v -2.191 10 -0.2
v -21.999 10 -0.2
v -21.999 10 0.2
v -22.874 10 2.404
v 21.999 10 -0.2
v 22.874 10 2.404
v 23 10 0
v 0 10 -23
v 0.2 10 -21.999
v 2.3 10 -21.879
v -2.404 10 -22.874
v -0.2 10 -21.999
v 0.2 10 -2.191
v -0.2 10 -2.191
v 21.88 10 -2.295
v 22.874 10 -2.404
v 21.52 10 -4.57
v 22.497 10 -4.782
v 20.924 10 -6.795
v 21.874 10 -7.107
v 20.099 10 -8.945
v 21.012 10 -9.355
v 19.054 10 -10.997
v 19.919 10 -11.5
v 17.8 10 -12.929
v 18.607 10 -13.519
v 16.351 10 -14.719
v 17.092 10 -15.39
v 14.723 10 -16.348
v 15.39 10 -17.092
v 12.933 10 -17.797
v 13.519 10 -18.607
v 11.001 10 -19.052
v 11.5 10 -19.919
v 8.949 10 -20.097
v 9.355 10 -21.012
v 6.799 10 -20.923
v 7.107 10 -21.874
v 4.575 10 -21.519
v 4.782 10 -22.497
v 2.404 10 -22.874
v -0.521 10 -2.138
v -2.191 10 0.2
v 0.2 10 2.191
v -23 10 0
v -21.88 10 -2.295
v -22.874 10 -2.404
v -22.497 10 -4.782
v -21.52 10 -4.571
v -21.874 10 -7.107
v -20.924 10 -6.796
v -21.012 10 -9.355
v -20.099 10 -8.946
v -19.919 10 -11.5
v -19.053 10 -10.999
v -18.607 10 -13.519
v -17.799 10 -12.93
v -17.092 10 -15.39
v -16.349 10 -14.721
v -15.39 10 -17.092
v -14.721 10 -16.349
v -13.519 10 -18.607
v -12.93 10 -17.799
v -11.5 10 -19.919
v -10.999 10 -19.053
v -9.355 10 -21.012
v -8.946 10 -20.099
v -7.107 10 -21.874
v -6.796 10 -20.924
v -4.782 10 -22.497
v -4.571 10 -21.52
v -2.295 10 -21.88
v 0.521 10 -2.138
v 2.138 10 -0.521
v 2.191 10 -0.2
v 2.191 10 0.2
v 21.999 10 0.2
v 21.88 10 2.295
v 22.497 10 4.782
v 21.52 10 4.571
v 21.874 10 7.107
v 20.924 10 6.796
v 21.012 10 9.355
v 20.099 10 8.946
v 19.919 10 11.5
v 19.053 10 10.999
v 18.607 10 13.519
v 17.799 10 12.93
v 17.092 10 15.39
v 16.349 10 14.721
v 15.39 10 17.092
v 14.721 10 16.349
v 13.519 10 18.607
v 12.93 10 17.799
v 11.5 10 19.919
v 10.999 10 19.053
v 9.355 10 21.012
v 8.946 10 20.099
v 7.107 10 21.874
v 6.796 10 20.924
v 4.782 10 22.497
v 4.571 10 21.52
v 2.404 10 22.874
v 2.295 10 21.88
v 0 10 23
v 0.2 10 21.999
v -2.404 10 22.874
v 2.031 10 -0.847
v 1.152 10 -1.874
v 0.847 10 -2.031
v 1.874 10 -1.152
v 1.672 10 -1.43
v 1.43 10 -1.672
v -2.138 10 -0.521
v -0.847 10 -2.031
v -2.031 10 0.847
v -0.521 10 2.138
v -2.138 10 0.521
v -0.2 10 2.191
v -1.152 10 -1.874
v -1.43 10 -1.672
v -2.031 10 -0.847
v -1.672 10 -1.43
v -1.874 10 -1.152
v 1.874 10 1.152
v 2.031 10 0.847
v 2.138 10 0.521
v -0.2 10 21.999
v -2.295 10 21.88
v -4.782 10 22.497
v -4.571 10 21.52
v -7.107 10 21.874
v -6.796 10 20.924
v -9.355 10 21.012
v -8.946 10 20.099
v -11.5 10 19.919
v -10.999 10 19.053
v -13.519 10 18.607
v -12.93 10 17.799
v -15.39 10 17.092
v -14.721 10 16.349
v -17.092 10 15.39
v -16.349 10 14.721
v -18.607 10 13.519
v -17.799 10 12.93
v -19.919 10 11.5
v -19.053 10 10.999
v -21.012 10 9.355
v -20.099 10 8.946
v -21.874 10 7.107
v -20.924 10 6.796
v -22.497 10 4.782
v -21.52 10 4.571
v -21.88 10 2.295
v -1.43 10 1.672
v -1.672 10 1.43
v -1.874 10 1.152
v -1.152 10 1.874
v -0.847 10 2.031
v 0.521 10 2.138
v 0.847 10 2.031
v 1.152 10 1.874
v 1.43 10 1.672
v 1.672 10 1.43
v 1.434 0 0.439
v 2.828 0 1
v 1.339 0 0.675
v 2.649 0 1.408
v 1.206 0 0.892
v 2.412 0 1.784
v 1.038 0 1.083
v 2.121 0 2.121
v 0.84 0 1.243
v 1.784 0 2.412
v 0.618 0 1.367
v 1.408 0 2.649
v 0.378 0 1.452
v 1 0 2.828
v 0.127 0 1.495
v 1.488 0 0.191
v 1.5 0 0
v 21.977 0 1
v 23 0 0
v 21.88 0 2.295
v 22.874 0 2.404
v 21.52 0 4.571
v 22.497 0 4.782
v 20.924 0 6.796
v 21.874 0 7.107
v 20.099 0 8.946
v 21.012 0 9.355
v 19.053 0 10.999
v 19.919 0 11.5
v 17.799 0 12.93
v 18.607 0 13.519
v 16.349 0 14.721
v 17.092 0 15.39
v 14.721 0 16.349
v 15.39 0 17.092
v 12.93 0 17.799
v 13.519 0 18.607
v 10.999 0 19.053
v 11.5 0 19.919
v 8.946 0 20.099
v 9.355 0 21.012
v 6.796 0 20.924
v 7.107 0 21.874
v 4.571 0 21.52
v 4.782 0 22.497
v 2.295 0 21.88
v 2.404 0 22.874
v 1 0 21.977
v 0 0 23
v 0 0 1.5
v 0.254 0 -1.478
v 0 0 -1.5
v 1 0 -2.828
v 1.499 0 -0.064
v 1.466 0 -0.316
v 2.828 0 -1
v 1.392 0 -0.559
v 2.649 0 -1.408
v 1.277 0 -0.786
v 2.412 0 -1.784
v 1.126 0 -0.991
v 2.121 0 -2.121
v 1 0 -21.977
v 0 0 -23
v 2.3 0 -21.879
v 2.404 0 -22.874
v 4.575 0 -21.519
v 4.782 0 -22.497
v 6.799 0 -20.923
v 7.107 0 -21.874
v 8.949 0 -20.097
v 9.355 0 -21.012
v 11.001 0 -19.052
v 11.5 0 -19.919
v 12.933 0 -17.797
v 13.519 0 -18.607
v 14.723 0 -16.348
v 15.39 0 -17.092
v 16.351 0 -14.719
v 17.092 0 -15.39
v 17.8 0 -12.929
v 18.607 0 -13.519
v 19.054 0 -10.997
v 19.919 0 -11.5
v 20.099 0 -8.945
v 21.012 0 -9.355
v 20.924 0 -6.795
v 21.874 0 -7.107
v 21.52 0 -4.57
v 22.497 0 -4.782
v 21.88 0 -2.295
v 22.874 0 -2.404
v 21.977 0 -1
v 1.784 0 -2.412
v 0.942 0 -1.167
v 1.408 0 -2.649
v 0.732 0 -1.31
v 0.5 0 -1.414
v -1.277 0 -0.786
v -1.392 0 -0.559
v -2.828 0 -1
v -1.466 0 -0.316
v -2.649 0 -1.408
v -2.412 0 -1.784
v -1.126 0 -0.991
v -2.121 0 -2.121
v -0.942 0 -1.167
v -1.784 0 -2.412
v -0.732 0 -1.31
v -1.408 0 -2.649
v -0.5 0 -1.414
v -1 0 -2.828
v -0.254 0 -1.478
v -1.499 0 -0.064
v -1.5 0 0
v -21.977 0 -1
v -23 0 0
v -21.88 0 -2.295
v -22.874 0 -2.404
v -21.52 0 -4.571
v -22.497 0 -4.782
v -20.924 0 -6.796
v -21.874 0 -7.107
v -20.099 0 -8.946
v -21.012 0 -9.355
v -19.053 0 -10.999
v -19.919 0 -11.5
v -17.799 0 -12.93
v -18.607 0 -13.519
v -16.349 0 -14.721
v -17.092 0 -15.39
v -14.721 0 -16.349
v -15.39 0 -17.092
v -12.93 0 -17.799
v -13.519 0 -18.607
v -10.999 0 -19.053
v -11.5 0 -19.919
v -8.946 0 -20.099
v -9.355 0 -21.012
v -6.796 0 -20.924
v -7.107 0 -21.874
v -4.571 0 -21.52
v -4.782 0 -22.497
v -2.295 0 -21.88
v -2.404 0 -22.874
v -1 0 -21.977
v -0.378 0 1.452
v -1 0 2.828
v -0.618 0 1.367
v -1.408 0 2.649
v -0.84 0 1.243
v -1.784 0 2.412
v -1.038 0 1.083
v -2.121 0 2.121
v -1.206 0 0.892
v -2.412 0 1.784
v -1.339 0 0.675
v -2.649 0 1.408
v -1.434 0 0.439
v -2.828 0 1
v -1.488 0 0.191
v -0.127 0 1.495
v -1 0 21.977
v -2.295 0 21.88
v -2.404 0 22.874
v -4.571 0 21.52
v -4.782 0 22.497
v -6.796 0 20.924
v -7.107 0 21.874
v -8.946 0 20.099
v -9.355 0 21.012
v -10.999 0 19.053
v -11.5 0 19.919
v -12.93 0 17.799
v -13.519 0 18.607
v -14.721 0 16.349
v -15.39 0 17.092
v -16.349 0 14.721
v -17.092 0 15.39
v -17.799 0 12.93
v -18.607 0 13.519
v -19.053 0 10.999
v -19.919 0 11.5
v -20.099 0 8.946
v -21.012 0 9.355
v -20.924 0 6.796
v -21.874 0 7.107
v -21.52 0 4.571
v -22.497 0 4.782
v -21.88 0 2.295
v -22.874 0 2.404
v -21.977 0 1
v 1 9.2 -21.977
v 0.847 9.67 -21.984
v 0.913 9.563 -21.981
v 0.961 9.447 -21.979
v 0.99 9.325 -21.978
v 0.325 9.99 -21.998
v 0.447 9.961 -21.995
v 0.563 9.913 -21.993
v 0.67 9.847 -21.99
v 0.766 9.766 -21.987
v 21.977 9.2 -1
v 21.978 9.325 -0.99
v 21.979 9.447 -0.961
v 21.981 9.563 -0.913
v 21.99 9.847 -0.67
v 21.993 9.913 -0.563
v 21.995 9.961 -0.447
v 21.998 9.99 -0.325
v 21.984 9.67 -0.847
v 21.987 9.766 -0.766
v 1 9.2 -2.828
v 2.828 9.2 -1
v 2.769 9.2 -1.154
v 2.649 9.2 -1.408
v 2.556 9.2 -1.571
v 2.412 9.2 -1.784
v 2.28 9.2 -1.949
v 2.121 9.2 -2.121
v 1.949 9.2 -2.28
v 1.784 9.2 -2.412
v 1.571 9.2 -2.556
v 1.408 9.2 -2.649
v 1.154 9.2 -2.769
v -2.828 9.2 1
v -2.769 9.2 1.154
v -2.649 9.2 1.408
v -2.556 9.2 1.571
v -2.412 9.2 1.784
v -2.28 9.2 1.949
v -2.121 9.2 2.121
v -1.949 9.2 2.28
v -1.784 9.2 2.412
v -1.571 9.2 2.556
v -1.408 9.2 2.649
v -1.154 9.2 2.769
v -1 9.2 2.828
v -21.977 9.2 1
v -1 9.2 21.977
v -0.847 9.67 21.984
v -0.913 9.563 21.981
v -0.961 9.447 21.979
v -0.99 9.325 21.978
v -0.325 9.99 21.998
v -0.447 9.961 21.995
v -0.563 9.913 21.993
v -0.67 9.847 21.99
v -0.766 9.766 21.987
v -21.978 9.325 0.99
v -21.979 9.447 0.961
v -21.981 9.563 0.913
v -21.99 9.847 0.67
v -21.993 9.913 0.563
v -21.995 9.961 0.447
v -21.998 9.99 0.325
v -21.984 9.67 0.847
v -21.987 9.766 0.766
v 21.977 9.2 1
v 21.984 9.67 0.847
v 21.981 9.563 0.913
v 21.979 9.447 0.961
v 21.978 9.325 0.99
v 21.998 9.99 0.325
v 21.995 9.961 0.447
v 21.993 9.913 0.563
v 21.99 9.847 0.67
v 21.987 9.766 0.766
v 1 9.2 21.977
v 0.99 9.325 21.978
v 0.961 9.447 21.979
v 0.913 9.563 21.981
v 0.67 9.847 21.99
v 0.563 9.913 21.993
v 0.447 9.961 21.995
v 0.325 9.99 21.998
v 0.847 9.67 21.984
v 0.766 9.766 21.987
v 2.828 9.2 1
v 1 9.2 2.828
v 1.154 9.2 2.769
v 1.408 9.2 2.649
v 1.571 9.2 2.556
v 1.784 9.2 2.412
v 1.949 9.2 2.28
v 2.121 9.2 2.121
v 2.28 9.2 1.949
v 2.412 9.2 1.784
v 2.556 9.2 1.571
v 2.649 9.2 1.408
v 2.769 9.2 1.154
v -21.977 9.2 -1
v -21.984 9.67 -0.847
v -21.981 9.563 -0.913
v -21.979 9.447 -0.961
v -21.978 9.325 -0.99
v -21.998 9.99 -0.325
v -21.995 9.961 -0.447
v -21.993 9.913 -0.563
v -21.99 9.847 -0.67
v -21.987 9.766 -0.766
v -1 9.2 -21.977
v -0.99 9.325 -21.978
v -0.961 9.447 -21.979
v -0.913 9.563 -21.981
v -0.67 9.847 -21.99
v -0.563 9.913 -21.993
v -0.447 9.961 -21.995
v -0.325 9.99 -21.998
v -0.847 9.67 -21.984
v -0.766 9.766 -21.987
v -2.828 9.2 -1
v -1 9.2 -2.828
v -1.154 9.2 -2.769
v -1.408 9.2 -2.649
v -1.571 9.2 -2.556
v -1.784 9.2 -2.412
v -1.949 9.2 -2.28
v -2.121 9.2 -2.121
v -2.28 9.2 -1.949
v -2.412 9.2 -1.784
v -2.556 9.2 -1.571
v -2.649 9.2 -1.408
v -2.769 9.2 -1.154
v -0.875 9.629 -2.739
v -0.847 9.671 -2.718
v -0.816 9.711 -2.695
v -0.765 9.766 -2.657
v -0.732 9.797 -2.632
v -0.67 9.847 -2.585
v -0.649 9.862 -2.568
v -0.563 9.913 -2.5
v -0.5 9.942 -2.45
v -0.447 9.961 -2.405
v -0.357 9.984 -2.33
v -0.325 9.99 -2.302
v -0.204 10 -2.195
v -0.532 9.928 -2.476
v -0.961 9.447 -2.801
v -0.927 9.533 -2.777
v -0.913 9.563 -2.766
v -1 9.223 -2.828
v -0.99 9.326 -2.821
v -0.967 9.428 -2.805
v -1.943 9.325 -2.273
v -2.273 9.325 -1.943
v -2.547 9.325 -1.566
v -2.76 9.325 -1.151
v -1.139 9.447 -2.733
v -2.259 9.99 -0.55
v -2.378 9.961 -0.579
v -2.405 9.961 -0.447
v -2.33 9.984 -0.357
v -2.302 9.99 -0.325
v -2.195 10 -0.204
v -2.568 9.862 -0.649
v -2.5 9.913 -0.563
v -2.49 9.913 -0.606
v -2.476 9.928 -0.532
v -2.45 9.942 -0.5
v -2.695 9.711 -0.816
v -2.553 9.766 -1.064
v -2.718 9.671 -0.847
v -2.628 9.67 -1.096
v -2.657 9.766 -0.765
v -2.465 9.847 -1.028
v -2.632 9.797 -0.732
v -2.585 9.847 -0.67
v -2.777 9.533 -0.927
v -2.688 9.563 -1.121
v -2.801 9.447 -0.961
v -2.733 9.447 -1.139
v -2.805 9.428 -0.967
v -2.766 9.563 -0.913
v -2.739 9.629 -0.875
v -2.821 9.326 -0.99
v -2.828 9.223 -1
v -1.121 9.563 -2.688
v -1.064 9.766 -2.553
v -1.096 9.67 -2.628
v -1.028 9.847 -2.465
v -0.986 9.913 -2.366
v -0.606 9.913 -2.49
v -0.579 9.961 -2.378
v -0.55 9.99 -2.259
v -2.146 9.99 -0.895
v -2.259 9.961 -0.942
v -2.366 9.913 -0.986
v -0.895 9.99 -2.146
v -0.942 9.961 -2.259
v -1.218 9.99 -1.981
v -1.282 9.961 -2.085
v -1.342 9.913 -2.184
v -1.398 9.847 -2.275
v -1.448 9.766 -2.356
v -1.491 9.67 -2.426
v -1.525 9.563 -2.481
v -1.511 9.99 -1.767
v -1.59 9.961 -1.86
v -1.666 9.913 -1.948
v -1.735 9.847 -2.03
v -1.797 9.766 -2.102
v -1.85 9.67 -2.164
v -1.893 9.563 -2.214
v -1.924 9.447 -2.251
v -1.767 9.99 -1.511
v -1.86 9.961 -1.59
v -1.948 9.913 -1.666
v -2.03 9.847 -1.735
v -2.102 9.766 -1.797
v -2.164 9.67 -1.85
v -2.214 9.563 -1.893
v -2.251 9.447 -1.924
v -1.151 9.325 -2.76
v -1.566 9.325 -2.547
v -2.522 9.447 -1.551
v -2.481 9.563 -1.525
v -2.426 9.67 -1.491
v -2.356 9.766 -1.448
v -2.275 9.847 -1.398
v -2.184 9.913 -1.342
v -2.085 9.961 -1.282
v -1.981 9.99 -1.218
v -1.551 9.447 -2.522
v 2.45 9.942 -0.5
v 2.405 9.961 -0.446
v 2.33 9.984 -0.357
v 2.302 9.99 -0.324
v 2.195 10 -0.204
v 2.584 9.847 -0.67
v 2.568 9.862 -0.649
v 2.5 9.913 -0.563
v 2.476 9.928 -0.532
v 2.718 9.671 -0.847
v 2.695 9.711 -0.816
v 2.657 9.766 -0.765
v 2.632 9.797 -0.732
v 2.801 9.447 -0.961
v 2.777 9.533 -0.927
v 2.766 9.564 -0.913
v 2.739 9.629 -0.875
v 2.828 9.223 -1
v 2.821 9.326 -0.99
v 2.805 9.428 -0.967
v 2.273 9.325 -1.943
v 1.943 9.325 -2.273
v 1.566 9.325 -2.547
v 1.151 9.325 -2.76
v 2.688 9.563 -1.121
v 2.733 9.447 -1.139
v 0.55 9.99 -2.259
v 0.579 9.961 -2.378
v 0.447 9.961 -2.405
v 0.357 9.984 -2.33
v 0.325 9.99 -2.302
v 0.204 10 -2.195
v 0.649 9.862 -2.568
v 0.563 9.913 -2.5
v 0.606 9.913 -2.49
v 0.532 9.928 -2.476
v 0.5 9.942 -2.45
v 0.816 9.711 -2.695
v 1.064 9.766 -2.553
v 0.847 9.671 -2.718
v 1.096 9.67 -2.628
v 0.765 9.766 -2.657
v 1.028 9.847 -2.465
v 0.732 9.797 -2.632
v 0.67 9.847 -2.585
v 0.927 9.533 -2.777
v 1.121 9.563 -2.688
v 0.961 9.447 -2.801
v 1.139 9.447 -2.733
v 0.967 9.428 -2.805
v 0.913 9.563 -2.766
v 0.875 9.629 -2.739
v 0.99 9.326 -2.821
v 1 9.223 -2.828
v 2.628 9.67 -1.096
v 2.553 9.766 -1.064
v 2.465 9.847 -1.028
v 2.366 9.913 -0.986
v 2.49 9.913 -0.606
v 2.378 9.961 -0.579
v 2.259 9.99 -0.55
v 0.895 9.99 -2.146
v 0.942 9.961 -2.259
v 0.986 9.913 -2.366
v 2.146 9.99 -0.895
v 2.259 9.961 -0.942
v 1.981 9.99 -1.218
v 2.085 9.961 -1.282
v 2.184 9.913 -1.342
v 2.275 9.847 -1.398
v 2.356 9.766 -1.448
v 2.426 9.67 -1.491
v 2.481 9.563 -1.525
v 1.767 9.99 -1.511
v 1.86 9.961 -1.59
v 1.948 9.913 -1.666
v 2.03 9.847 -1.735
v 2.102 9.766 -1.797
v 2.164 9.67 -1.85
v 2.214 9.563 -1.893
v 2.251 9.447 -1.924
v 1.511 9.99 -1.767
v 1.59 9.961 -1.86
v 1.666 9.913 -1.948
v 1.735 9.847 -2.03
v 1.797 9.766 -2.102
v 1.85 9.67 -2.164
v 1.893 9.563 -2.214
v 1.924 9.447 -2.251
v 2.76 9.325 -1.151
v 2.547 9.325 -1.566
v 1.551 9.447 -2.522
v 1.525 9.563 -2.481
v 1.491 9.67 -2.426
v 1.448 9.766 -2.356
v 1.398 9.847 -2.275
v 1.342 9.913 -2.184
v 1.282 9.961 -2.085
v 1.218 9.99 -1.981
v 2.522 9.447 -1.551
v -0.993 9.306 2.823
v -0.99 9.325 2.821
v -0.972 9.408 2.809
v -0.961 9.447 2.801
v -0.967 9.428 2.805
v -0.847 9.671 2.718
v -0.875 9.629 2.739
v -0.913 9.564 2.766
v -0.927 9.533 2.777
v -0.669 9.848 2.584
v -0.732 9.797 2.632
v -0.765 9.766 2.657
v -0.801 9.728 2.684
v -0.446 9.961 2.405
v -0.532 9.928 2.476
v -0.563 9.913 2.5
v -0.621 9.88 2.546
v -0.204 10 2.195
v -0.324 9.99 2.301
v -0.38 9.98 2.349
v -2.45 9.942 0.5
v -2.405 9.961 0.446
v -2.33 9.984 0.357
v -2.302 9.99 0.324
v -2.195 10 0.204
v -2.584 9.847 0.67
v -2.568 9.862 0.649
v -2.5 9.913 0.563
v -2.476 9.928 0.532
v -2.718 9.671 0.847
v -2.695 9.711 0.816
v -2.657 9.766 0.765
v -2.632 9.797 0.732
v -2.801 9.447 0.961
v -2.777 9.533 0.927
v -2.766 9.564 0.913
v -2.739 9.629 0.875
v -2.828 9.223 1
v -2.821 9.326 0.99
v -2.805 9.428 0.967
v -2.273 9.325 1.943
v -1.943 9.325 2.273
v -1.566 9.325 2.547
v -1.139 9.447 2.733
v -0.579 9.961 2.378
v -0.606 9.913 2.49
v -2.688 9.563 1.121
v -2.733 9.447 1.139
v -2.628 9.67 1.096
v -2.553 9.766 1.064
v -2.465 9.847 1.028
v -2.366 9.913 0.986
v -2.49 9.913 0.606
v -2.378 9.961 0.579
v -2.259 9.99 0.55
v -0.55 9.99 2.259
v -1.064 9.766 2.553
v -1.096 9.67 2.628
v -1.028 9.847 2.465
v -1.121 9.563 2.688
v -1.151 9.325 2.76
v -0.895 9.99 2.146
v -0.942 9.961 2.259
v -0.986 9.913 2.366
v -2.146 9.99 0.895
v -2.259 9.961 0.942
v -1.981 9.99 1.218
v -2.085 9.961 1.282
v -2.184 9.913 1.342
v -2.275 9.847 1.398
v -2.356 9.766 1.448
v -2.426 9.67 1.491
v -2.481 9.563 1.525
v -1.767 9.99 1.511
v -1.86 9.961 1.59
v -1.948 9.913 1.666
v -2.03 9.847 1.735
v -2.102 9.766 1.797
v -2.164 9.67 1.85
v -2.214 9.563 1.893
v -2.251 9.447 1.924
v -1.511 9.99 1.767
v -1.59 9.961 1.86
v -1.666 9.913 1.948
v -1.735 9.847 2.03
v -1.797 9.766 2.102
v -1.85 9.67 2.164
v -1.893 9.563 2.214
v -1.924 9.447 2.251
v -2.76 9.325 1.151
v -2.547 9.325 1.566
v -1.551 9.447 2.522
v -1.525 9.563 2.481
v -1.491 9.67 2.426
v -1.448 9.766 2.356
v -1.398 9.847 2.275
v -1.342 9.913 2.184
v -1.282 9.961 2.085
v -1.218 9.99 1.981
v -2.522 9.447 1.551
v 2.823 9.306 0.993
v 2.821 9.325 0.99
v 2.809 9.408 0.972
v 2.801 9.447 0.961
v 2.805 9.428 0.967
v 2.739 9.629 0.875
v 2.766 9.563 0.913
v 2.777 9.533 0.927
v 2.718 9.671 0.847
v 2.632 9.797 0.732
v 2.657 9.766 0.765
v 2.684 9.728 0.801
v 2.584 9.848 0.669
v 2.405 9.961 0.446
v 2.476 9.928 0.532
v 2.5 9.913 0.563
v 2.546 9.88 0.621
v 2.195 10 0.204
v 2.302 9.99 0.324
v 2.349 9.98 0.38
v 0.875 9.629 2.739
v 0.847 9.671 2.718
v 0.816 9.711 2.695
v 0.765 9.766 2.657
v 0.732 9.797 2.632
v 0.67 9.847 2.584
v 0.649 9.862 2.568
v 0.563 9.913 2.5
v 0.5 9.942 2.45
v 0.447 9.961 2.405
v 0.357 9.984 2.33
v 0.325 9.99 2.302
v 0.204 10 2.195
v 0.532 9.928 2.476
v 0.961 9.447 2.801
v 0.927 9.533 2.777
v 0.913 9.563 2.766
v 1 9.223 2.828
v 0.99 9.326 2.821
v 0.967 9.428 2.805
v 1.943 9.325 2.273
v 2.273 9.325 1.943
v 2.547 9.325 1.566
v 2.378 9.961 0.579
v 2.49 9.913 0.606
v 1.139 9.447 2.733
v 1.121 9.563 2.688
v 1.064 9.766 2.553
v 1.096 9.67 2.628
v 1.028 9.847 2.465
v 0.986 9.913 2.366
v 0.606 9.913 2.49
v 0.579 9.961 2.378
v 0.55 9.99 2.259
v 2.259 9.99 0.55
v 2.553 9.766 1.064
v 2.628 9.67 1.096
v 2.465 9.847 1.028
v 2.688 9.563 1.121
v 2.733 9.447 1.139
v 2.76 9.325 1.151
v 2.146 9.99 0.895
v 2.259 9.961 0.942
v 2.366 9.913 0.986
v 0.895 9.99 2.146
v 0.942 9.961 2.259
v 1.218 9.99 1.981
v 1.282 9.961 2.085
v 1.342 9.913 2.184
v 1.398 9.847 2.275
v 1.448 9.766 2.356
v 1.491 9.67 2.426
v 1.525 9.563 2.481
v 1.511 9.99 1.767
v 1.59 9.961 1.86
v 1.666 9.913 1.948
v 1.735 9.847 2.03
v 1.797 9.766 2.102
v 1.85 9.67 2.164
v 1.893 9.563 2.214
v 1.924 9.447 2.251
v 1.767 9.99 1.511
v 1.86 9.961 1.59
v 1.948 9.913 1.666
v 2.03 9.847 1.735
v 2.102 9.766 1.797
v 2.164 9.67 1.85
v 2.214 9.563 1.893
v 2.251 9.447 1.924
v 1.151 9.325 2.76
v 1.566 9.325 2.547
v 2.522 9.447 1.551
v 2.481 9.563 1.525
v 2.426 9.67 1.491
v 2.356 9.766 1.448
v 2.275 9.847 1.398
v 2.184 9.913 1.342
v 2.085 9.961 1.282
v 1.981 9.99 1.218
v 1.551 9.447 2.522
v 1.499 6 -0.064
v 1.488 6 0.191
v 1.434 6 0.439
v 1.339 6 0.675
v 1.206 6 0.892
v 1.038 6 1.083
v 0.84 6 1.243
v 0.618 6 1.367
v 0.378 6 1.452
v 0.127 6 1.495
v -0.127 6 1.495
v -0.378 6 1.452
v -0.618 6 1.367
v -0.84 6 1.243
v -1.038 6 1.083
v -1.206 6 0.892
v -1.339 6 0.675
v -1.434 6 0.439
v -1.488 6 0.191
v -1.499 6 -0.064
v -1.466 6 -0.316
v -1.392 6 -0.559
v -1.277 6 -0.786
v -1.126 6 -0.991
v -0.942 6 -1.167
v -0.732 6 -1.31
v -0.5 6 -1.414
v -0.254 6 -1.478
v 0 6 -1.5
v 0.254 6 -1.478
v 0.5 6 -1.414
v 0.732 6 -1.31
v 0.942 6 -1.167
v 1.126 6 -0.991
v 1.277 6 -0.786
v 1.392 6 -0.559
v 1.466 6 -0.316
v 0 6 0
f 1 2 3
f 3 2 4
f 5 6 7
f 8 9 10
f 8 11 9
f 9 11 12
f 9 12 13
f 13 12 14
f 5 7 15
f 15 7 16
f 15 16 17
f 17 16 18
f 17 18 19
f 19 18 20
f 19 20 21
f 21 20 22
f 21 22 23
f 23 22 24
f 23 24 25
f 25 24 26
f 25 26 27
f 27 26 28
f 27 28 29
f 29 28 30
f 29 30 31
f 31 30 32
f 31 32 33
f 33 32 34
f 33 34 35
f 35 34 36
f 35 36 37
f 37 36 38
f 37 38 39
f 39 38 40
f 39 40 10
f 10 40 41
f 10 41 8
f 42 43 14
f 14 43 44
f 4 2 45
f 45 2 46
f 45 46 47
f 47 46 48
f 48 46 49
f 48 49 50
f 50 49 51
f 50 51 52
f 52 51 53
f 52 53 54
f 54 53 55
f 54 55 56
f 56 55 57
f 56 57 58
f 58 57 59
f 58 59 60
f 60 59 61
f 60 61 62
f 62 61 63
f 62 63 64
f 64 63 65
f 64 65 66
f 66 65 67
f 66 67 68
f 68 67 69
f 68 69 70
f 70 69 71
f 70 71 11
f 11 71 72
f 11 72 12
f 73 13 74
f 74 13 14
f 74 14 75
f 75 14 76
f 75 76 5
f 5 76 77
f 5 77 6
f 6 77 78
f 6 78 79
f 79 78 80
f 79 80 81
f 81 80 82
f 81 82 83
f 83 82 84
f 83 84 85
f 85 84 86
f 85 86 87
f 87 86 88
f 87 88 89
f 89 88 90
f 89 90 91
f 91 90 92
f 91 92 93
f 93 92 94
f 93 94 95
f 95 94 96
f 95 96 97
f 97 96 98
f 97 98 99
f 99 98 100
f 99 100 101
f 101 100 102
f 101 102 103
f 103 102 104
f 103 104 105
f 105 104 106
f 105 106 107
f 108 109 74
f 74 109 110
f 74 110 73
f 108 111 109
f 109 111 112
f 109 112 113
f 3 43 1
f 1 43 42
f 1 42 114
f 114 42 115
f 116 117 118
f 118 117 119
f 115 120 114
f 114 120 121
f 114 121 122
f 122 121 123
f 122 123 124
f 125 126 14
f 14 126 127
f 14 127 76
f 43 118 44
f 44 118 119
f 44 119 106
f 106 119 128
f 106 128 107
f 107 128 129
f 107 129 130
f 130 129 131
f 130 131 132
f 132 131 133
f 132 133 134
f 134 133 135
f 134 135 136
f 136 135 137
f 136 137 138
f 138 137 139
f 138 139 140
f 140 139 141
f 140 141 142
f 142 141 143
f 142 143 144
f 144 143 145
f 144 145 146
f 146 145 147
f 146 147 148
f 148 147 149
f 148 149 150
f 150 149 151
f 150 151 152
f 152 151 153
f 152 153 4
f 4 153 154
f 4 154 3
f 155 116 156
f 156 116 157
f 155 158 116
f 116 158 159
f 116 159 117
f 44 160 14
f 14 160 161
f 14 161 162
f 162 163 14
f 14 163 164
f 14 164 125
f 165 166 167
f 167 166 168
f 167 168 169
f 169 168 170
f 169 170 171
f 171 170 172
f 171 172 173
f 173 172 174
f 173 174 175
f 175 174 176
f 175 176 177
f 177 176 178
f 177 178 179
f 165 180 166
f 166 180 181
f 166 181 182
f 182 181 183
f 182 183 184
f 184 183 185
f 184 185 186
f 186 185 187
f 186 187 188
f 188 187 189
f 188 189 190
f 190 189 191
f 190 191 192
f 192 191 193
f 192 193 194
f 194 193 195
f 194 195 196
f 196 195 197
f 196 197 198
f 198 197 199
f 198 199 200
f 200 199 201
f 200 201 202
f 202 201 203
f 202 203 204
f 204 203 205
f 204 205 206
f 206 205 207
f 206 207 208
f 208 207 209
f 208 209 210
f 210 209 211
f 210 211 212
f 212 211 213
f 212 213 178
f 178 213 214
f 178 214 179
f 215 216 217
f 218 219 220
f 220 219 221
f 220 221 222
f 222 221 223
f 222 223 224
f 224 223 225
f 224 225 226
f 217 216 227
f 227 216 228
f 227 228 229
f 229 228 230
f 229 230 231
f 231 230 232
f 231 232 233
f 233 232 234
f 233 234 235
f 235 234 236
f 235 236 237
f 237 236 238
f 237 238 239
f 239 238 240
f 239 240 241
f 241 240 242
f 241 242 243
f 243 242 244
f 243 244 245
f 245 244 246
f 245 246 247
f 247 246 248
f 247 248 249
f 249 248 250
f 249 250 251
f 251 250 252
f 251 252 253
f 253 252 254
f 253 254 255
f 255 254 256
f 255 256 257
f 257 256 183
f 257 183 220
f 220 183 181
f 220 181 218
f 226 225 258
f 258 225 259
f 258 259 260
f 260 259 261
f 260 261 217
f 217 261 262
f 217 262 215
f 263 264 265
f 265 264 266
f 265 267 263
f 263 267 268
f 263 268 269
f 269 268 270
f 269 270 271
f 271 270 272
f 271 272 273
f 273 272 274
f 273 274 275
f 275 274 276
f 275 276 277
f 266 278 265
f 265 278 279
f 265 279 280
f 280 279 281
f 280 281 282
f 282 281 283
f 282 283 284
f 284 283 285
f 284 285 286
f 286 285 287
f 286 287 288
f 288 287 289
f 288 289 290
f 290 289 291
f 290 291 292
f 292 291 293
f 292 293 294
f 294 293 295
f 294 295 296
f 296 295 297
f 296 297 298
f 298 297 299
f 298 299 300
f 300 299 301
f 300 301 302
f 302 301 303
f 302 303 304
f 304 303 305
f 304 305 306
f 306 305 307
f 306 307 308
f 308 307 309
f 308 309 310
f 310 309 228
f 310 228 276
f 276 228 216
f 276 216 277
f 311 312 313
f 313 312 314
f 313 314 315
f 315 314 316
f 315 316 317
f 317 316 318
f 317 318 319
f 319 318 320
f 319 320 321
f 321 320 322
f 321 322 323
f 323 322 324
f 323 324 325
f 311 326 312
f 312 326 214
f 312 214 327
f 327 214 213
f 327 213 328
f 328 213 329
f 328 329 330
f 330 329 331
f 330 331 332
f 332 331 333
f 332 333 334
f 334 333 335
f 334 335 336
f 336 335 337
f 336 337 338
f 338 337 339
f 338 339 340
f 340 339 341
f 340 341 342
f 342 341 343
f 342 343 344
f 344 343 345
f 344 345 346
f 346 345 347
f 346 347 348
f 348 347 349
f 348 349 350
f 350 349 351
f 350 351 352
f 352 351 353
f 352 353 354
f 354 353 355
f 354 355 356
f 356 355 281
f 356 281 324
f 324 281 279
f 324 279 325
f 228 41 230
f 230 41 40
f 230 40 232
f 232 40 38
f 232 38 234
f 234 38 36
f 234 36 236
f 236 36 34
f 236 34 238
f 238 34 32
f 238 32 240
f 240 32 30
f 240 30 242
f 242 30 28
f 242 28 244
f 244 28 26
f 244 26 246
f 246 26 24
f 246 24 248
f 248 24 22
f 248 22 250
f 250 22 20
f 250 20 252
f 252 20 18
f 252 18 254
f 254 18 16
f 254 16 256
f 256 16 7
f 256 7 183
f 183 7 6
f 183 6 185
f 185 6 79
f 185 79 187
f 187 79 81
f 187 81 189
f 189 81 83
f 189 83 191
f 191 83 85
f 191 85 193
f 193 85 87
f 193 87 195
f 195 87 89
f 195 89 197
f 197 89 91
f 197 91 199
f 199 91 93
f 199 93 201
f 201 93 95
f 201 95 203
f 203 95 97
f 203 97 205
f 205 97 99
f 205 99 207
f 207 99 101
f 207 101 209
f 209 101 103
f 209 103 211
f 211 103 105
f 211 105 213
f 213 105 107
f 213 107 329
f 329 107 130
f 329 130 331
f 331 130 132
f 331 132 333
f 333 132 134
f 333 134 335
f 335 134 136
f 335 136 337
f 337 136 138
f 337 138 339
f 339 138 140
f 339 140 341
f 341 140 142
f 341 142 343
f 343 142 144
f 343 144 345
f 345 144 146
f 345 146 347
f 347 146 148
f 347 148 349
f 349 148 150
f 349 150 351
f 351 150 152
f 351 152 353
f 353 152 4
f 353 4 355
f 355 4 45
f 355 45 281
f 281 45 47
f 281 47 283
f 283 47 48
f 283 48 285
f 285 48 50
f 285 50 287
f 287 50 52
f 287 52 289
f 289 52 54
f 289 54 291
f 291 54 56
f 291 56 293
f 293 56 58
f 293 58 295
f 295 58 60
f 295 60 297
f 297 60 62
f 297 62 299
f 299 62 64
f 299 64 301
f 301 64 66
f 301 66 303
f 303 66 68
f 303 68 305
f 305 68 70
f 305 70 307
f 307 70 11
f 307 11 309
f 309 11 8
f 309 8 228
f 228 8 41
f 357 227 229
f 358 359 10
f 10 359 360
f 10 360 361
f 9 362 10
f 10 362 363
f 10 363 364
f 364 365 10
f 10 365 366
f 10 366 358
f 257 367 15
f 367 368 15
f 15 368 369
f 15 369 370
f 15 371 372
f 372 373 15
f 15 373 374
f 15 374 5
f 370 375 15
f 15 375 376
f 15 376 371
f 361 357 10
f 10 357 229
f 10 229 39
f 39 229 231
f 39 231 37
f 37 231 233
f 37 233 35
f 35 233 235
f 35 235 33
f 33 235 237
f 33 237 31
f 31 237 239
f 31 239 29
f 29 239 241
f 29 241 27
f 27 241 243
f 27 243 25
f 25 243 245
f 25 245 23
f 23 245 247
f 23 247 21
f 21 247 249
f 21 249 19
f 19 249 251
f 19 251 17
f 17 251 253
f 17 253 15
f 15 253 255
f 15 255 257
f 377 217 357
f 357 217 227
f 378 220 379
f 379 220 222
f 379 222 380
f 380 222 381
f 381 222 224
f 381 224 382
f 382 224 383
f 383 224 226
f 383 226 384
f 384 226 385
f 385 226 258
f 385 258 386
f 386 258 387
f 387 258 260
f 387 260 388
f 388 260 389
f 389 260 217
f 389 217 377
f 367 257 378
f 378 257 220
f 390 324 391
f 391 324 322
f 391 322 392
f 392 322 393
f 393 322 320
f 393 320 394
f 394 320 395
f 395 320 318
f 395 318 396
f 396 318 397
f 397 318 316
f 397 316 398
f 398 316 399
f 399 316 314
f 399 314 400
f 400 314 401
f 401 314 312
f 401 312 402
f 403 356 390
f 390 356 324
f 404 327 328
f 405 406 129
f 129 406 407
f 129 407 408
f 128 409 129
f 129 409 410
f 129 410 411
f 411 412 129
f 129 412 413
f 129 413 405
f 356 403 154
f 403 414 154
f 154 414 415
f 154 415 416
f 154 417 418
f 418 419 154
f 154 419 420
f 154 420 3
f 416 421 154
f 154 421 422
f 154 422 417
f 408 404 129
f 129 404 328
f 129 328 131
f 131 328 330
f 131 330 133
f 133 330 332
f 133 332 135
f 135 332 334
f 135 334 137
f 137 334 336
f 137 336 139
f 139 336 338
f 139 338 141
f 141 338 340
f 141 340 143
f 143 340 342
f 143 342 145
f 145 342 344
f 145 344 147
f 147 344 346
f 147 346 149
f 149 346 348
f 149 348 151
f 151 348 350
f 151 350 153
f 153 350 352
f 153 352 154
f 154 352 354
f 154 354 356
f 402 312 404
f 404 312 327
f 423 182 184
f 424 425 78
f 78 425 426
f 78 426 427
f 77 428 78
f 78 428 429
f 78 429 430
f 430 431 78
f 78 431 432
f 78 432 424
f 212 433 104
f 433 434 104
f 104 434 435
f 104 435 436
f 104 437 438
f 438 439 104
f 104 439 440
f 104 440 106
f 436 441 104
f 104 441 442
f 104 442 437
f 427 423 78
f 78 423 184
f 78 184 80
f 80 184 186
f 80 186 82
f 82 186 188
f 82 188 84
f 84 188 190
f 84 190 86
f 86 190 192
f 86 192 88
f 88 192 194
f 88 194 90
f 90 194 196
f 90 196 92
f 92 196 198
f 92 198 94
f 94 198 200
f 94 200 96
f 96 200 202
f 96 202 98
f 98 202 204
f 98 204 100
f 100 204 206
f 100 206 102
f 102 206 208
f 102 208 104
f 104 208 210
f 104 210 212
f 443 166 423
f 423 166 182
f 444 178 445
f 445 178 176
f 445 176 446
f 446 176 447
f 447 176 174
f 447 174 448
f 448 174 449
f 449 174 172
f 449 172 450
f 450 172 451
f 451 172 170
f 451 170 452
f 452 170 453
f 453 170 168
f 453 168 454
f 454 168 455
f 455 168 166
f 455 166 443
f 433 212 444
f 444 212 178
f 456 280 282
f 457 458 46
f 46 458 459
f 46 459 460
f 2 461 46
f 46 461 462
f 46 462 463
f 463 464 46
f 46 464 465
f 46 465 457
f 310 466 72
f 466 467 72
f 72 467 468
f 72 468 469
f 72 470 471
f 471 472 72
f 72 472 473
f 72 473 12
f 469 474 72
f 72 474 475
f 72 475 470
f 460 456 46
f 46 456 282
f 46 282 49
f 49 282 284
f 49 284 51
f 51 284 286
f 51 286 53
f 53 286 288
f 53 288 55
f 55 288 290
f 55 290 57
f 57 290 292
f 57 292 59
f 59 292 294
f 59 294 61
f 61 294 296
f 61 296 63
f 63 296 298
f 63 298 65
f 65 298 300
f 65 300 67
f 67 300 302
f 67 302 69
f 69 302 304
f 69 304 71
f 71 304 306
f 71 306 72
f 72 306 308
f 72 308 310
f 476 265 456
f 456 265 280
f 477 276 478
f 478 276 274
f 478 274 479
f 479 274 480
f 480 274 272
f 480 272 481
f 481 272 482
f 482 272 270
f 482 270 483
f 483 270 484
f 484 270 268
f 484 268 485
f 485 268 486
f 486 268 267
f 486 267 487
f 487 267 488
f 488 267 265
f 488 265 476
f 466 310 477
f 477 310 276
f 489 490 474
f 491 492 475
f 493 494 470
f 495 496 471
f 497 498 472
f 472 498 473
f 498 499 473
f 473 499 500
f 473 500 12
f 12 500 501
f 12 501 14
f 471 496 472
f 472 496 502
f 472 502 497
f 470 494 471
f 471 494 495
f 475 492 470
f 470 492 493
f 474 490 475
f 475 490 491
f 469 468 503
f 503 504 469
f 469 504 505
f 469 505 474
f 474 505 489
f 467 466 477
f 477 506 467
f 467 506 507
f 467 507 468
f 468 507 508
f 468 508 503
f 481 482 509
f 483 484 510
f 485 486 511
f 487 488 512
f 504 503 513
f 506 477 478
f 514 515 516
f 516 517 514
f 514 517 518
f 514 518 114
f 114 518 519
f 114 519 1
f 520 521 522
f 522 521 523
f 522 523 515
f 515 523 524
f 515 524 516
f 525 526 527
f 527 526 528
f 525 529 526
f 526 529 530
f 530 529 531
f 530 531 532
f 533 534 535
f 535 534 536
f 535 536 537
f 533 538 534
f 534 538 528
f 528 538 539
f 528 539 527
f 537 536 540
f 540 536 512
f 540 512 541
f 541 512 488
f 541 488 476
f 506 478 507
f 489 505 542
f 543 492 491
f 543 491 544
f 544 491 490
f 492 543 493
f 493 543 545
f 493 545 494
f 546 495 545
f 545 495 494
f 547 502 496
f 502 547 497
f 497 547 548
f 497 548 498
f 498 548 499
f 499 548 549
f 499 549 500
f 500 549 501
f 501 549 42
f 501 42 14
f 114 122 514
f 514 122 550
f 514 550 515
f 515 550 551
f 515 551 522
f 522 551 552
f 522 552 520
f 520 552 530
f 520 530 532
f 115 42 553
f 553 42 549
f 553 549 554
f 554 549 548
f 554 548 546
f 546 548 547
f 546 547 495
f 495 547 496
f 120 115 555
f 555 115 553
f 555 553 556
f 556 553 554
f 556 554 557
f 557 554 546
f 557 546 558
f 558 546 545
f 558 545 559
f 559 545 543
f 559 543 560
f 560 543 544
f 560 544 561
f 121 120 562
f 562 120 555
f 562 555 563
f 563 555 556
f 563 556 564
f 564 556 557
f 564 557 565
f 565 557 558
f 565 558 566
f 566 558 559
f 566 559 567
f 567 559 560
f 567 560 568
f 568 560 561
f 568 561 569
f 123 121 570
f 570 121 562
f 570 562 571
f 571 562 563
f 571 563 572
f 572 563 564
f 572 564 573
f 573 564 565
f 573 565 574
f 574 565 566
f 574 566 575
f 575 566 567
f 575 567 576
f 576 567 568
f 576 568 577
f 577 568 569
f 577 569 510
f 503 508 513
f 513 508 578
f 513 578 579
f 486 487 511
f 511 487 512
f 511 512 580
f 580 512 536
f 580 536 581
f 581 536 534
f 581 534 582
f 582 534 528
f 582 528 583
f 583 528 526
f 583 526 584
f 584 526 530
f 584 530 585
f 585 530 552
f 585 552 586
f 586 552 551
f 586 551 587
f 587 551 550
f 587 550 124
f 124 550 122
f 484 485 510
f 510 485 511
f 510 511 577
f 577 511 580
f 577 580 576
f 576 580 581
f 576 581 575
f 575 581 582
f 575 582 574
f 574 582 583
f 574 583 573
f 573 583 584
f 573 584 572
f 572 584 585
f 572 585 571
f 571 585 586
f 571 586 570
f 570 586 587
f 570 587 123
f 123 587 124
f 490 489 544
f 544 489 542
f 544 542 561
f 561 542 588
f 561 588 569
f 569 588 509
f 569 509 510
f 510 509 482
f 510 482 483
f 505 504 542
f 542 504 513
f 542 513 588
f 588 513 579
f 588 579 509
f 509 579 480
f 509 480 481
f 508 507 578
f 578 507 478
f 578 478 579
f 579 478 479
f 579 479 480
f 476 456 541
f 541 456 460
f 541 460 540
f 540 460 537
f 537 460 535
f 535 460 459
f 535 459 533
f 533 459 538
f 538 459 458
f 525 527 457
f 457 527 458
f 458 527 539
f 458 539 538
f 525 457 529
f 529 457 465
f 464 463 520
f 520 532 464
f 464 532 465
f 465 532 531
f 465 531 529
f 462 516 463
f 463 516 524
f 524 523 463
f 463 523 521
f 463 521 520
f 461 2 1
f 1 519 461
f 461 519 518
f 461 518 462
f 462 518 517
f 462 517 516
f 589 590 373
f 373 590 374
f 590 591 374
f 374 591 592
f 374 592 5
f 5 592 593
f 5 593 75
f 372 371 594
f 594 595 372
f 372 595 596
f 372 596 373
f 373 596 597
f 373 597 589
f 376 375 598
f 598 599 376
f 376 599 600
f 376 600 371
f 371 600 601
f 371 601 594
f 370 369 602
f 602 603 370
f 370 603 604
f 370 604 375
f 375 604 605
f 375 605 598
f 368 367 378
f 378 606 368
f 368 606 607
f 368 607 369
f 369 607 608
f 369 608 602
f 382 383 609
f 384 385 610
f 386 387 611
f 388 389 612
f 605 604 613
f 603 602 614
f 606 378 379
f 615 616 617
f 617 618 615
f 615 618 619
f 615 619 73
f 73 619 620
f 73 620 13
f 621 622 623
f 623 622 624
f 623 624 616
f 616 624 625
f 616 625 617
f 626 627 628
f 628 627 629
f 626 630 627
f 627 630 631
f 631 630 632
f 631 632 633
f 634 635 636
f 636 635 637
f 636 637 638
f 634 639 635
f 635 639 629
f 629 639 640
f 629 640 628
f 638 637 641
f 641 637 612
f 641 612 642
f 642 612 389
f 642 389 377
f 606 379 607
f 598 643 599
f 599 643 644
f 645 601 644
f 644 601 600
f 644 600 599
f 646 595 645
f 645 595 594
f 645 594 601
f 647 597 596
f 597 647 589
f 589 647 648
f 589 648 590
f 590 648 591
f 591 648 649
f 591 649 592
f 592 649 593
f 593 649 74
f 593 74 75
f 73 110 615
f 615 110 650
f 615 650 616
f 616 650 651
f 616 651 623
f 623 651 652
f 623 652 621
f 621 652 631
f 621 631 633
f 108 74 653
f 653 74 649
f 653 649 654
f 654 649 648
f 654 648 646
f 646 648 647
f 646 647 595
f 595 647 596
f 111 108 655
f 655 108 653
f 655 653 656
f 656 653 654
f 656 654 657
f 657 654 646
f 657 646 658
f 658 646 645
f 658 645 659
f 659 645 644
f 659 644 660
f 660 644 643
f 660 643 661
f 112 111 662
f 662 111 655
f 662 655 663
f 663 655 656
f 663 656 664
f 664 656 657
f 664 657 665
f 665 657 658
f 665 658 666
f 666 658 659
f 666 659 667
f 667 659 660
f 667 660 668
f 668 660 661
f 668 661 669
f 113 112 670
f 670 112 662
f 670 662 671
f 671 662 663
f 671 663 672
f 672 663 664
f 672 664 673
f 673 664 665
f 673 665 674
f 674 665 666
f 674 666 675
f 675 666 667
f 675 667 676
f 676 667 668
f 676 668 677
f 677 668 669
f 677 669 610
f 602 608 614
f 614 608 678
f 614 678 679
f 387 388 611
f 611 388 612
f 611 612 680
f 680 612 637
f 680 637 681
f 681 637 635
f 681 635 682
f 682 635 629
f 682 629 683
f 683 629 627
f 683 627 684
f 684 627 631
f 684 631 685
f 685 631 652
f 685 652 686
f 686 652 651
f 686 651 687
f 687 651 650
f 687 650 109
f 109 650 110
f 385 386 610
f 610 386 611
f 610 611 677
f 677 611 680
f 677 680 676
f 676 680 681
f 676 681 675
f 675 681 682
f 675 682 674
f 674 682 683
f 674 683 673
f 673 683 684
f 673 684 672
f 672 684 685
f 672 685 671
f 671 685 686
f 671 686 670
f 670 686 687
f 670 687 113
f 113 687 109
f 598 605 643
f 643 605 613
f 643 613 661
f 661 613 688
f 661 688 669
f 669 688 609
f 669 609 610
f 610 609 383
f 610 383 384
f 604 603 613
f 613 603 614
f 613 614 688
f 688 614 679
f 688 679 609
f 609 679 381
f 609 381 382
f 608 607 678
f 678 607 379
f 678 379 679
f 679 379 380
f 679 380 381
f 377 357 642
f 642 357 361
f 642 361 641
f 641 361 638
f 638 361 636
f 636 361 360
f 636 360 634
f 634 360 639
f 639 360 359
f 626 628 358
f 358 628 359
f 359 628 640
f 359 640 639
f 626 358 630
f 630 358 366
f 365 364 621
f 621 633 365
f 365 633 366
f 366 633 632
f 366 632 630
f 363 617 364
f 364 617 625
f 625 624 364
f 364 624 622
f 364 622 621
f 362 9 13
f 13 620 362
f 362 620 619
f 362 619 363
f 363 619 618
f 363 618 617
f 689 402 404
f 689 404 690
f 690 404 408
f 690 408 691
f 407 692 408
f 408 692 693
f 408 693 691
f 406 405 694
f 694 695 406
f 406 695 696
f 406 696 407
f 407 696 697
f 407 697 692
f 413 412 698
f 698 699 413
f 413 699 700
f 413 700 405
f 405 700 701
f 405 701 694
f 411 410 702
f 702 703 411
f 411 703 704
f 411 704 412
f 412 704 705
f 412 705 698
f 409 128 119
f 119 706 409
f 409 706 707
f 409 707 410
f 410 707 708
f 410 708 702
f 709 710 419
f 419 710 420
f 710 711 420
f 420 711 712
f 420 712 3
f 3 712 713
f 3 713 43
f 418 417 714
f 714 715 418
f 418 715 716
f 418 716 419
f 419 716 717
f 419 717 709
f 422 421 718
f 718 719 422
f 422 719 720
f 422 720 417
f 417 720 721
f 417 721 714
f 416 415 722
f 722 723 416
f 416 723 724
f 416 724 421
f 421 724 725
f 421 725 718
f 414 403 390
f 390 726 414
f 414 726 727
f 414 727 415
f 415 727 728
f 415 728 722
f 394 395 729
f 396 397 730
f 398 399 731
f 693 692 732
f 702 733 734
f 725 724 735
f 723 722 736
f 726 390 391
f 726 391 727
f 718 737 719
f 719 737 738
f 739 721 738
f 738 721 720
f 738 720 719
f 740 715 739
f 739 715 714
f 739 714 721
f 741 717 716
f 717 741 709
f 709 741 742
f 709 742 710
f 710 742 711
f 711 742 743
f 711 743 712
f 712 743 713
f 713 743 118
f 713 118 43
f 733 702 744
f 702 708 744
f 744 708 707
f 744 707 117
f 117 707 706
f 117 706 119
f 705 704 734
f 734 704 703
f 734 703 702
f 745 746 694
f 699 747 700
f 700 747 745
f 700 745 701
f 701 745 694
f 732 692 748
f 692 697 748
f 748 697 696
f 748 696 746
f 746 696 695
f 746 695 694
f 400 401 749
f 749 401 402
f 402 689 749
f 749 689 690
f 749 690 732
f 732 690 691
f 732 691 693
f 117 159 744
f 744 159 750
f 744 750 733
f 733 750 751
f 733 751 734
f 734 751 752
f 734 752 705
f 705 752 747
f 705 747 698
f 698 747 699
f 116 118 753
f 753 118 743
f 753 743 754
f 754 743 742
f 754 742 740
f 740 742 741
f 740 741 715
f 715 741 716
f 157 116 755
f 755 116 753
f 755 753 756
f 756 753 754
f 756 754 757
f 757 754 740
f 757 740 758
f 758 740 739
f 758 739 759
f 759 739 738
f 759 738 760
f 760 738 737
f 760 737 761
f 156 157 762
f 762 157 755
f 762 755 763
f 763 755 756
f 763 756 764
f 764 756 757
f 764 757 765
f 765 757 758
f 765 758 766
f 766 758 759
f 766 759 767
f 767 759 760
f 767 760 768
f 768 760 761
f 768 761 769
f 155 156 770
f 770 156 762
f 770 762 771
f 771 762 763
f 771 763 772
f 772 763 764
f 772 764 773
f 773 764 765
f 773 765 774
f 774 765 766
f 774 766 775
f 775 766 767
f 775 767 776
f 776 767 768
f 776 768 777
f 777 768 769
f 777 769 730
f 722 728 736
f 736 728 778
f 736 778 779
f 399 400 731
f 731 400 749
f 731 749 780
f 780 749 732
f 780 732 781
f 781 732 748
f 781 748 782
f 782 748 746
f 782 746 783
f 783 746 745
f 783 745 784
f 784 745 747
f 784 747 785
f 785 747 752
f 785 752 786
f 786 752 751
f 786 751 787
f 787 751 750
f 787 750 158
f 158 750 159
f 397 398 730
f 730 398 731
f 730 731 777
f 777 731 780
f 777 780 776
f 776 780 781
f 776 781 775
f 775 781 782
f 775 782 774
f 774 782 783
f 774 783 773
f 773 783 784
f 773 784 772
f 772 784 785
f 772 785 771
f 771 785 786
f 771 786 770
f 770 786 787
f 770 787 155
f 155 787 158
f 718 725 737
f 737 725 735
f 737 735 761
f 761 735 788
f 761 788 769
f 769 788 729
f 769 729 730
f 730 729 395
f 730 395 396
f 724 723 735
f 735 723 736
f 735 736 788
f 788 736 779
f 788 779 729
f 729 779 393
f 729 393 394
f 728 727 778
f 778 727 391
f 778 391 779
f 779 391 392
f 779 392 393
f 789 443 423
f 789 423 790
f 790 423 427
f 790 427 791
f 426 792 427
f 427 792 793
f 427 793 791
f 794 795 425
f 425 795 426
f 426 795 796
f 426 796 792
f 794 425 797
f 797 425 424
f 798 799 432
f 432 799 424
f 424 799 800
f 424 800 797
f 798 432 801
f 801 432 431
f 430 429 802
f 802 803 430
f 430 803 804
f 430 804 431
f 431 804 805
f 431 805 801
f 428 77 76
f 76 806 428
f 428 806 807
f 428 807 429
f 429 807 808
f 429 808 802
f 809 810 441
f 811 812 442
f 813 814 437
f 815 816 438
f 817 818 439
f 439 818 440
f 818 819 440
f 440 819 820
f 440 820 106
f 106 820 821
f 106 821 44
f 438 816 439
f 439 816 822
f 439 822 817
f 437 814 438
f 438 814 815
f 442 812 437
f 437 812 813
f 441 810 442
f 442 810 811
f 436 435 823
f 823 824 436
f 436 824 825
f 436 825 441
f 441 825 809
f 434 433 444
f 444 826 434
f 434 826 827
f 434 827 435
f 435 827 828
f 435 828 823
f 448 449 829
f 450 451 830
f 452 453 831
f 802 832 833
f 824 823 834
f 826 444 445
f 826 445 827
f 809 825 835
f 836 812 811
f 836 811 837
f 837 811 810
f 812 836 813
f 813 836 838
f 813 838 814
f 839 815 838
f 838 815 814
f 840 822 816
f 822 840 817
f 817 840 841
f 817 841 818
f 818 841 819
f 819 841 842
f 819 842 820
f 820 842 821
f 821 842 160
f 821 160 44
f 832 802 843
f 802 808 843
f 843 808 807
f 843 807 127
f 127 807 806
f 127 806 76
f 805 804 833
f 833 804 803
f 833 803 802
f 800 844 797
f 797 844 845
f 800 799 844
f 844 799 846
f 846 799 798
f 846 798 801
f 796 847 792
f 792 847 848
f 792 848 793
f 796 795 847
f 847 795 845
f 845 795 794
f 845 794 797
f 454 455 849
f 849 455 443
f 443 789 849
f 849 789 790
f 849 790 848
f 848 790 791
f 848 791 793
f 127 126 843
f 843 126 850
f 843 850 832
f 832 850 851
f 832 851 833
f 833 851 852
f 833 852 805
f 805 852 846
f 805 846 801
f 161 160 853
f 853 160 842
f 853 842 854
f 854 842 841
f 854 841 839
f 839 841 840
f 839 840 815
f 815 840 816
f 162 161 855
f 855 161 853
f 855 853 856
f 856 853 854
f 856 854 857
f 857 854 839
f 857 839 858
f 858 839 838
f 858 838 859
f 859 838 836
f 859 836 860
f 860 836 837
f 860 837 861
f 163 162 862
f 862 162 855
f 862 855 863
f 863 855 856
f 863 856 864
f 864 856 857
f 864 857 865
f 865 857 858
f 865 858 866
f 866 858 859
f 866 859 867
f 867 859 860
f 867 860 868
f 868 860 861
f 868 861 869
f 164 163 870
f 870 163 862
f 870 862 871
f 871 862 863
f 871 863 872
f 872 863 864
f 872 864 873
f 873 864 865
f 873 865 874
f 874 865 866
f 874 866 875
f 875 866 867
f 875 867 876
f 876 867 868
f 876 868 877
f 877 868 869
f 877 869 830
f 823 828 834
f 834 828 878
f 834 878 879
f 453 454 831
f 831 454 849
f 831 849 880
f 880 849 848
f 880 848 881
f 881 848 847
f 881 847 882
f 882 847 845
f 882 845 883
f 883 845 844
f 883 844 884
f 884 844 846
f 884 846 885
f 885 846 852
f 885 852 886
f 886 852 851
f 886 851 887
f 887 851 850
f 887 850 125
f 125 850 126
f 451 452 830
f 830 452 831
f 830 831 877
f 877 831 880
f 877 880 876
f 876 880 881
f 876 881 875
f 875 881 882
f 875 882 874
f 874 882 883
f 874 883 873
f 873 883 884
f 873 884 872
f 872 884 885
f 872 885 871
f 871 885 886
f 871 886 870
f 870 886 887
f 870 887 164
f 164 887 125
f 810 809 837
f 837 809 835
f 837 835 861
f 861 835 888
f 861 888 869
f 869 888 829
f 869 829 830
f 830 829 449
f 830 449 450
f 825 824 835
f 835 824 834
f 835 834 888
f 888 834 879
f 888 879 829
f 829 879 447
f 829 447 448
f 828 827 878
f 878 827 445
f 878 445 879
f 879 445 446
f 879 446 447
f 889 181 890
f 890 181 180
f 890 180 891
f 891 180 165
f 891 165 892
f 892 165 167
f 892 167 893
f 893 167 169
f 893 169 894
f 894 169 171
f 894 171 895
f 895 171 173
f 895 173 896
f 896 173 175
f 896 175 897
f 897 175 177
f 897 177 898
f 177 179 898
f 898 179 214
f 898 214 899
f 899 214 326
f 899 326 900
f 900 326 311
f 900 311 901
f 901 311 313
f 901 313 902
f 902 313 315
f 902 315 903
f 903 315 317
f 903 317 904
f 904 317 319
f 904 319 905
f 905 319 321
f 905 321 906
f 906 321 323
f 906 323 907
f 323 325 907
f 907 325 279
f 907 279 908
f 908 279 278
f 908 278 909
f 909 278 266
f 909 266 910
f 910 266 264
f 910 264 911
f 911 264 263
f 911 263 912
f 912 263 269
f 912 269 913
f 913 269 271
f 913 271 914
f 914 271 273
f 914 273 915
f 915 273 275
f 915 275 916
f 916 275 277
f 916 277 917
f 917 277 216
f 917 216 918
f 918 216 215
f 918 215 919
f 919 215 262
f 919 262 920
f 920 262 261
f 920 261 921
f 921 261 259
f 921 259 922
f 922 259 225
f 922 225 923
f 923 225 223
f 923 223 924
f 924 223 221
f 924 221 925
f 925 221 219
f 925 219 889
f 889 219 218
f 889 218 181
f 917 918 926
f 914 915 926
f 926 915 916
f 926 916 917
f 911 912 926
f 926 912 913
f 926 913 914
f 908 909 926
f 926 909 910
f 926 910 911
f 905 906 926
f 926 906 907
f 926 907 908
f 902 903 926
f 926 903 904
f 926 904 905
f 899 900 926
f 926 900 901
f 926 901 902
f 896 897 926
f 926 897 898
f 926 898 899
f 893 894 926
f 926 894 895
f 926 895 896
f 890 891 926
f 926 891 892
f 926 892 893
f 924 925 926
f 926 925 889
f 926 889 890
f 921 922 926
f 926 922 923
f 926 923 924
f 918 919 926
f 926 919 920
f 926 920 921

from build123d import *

# Parameters (mm, degrees)
SKETCH1_R           = 23
BOSS_EXTRUDE1_DEPTH = 10
FILLET1_R           = 0.8
SKETCH2_R           = 1.5
CUT_EXTRUDE1_DEPTH  = 6


with BuildPart() as part:
    # Sketch1 → Boss-Extrude1 (new body)
    with BuildSketch(Plane(origin=(0, 0, 0), x_dir=(1, 0, 0), z_dir=(0, 1, 0))):
        with Locations(Location((0, 0, 0), (0, 0, 270))):
            Circle(SKETCH1_R)
        with BuildLine():
            Line((-1, 21.977260976), (-1, 2.828427125))
            ThreePointArc((-1, 2.828427125), (-2.121320344, 2.121320344), (-2.828427125, 1))
            Line((-2.828427125, 1), (-21.977260976, 1))
            ThreePointArc((-21.977260976, 1), (-15.556349186, 15.556349186), (-1, 21.977260976))
        make_face(mode=Mode.SUBTRACT)
        with BuildLine():
            Line((1, 21.977260976), (1, 2.828427125))
            ThreePointArc((1, 2.828427125), (2.121320344, 2.121320344), (2.828427125, 1))
            Line((2.828427125, 1), (21.977260976, 1))
            ThreePointArc((21.977260976, 1), (15.556349186, 15.556349186), (1, 21.977260976))
        make_face(mode=Mode.SUBTRACT)
        with BuildLine():
            Line((-21.977260976, -1), (-2.828427125, -1))
            ThreePointArc((-2.828427125, -1), (-2.121320344, -2.121320344), (-1, -2.828427125))
            Line((-1, -2.828427125), (-1, -21.977260976))
            ThreePointArc((-1, -21.977260976), (-15.556349186, -15.556349186), (-21.977260976, -1))
        make_face(mode=Mode.SUBTRACT)
        with BuildLine():
            Line((1, -2.828427125), (1, -21.977260976))
            ThreePointArc((1, -21.977260976), (15.556349186, -15.556349186), (21.977260976, -1))
            Line((21.977260976, -1), (2.828427125, -1))
            ThreePointArc((2.828427125, -1), (2.121320344, -2.121320344), (1, -2.828427125))
        make_face(mode=Mode.SUBTRACT)
    extrude(amount=BOSS_EXTRUDE1_DEPTH)

    # Fillet1
    fillet1_edges = [part.edges().sort_by_distance(p)[0] for p in [
        (2.121320344, 10, -2.121320344),
        (12.40284405, 10, -1),
        (-2.121320344, 10, 2.121320344),
        (-12.40284405, 10, 1),
        (-1, 10, 12.40284405),
        (12.40284405, 10, 1),
        (2.121320344, 10, 2.121320344),
        (1, 10, 12.40284405),
        (-12.40284405, 10, -1),
        (-2.121320344, 10, -2.121320344),
        (-1, 10, -12.40284405),
        (1, 10, -12.40284405),
    ]]
    fillet(fillet1_edges, radius=FILLET1_R)

    # Sketch2 → Cut-Extrude1 (cut)
    with BuildSketch(Plane.XZ):
        with Locations(Location((0, 0, 0), (0, 0, 270))):
            Circle(SKETCH2_R)
    extrude(amount=-CUT_EXTRUDE1_DEPTH, mode=Mode.SUBTRACT)


solid = part.part
